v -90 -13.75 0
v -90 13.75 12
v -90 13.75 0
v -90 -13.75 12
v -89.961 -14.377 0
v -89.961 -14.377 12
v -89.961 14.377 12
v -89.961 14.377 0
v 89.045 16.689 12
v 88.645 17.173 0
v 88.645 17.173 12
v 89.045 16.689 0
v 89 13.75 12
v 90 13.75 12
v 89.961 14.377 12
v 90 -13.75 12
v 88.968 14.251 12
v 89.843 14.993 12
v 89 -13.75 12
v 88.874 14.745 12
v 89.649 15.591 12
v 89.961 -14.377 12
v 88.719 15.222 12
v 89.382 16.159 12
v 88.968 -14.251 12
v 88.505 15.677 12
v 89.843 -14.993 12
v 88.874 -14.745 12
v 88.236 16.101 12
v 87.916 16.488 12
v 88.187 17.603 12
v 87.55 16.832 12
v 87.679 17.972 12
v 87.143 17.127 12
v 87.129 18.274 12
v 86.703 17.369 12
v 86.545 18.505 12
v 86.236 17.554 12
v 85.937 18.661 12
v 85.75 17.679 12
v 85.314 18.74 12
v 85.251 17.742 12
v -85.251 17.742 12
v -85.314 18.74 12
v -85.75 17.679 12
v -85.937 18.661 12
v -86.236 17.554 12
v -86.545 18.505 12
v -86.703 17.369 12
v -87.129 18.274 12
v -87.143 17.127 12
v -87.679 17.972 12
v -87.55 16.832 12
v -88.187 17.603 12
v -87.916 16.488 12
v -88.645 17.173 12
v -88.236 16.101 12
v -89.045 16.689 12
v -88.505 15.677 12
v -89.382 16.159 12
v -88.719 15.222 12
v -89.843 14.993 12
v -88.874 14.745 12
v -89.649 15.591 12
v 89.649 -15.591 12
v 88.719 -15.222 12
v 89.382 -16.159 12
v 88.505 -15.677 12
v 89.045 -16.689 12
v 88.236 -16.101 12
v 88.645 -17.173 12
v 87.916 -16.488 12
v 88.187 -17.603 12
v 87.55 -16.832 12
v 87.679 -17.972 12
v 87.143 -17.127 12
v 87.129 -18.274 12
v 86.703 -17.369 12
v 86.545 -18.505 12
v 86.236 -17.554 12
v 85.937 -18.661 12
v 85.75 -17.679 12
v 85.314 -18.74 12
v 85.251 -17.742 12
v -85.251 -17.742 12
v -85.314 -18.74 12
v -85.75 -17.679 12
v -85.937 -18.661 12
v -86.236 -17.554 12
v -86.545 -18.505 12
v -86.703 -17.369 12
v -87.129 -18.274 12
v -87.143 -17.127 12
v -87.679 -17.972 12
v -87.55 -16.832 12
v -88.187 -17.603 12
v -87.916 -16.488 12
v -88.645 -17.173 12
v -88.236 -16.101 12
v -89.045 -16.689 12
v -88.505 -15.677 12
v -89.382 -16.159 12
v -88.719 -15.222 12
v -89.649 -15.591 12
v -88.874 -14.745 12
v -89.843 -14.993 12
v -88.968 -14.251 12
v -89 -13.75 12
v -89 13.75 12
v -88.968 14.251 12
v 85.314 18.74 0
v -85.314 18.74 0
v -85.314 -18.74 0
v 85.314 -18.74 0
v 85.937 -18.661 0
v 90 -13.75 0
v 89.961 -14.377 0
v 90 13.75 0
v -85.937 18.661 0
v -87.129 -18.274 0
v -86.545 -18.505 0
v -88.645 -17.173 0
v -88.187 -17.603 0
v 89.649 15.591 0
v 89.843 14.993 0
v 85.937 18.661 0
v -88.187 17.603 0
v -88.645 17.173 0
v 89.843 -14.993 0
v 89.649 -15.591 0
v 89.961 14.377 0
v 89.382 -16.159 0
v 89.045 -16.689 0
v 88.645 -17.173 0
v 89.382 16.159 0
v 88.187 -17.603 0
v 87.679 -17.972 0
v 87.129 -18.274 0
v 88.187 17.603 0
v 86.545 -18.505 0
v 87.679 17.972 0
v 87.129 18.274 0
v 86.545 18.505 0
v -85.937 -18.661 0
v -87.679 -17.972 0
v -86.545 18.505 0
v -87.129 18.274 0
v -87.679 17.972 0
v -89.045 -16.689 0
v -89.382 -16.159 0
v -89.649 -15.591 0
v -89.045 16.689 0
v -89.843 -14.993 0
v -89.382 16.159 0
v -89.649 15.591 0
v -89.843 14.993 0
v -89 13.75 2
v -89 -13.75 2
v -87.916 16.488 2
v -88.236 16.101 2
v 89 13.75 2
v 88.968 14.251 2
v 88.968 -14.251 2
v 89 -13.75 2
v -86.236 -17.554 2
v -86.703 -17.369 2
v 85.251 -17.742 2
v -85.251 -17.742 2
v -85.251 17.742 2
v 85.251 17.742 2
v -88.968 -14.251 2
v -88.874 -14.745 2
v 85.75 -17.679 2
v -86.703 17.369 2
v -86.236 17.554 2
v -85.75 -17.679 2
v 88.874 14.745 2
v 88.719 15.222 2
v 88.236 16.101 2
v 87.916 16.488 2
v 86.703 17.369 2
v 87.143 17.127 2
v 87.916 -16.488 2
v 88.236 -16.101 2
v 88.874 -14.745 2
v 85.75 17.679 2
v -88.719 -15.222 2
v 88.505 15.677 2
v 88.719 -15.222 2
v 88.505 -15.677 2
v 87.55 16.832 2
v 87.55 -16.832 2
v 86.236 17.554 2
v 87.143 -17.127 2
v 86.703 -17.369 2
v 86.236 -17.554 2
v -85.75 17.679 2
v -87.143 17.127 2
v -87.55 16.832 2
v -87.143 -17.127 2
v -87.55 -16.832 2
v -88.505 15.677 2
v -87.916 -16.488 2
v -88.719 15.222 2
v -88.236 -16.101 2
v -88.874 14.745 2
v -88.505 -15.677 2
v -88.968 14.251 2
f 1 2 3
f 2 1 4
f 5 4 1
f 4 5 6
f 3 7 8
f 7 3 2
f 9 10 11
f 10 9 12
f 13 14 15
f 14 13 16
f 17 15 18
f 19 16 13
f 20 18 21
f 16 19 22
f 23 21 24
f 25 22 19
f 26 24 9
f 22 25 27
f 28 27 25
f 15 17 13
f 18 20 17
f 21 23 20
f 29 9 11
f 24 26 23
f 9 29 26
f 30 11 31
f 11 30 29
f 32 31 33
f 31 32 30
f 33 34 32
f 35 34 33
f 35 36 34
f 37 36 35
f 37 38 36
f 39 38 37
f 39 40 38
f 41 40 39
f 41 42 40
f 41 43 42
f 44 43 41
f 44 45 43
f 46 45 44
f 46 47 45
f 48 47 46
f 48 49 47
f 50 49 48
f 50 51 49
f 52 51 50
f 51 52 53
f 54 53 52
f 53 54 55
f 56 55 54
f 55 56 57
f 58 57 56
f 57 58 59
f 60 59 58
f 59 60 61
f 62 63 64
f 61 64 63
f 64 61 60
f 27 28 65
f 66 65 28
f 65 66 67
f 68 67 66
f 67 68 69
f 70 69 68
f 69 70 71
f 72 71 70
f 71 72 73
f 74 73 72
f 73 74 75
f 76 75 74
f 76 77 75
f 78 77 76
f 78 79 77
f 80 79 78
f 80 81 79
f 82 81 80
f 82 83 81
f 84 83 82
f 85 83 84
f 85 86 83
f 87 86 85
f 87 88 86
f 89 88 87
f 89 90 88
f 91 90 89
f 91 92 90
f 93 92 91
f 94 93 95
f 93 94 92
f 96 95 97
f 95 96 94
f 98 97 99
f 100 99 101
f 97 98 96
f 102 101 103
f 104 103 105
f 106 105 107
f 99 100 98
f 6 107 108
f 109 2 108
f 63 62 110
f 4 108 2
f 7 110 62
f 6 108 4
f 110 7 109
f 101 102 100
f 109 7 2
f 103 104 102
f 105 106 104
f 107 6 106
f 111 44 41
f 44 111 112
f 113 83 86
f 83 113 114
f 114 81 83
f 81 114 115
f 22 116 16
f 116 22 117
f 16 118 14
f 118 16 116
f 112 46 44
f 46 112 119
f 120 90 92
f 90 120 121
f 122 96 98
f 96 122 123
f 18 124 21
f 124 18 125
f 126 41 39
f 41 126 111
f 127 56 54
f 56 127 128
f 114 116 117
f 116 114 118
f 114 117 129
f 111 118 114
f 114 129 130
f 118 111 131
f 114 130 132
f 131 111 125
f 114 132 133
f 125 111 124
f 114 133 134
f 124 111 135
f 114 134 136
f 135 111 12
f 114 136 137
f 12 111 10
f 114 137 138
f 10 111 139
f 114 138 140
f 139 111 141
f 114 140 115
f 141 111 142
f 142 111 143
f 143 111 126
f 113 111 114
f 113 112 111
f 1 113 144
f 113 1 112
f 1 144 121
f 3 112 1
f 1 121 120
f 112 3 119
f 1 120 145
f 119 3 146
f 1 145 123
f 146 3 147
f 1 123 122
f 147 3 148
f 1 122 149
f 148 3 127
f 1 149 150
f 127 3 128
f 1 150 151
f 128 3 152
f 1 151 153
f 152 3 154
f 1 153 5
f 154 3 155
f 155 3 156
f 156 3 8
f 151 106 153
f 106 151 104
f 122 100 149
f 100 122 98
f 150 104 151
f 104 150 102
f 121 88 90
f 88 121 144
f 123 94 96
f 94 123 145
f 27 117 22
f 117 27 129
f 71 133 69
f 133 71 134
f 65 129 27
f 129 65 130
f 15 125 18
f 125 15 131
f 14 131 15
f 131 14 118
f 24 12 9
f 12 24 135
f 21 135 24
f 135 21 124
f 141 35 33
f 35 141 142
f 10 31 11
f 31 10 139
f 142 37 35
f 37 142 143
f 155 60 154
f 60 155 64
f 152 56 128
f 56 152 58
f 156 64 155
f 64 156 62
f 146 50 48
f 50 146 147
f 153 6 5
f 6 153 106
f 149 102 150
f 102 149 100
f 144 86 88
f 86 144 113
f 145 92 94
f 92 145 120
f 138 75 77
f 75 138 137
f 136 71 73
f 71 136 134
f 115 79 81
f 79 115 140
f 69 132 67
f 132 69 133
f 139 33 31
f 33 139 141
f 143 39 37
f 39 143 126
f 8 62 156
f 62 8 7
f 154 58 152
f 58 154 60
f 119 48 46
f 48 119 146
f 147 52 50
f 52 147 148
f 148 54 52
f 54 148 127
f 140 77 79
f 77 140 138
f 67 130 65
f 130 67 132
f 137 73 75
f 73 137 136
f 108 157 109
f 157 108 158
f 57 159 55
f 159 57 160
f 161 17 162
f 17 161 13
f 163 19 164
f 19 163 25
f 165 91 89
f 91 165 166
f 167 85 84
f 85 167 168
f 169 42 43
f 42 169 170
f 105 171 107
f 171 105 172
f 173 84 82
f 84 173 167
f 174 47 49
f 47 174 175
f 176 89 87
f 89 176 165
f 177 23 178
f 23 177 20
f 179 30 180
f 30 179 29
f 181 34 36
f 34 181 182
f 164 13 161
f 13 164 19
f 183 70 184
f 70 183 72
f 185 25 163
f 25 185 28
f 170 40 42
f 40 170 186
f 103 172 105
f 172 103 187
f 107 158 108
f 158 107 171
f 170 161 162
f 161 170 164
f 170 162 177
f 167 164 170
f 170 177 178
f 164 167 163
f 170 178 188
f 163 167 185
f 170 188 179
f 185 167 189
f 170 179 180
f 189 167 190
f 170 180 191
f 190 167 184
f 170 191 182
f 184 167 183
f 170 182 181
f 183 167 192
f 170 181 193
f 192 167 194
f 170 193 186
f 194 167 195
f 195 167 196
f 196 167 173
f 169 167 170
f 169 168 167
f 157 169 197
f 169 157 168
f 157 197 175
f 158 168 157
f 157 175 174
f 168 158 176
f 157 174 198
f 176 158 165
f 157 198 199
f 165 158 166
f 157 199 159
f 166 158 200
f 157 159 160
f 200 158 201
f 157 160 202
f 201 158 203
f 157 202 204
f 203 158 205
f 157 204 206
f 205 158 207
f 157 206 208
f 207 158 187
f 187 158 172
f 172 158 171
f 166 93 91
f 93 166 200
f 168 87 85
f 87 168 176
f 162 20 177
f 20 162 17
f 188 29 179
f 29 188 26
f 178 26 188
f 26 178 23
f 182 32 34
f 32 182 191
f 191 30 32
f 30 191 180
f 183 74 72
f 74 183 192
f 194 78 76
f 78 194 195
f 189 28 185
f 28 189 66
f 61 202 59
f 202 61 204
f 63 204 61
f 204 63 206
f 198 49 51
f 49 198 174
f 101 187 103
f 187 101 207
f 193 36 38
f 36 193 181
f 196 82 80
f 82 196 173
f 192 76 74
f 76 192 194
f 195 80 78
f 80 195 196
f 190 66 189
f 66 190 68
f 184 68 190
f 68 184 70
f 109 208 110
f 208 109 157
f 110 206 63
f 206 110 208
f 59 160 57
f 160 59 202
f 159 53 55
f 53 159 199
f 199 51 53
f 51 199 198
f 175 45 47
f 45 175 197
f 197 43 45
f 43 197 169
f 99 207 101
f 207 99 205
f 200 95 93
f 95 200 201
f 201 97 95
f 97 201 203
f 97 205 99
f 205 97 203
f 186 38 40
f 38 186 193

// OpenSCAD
$fn = 50;


difference() {
	union() {
		hull() {
			translate(v = [-85.0000000000, 13.7500000000, 0]) {
				cylinder(h = 12, r = 5);
			}
			translate(v = [85.0000000000, 13.7500000000, 0]) {
				cylinder(h = 12, r = 5);
			}
			translate(v = [-85.0000000000, -13.7500000000, 0]) {
				cylinder(h = 12, r = 5);
			}
			translate(v = [85.0000000000, -13.7500000000, 0]) {
				cylinder(h = 12, r = 5);
			}
		}
	}
	union() {
		translate(v = [0, 0, 2]) {
			hull() {
				translate(v = [-85.0000000000, 13.7500000000, 0]) {
					cylinder(h = 10, r = 4);
				}
				translate(v = [85.0000000000, 13.7500000000, 0]) {
					cylinder(h = 10, r = 4);
				}
				translate(v = [-85.0000000000, -13.7500000000, 0]) {
					cylinder(h = 10, r = 4);
				}
				translate(v = [85.0000000000, -13.7500000000, 0]) {
					cylinder(h = 10, r = 4);
				}
			}
		}
	}
}
